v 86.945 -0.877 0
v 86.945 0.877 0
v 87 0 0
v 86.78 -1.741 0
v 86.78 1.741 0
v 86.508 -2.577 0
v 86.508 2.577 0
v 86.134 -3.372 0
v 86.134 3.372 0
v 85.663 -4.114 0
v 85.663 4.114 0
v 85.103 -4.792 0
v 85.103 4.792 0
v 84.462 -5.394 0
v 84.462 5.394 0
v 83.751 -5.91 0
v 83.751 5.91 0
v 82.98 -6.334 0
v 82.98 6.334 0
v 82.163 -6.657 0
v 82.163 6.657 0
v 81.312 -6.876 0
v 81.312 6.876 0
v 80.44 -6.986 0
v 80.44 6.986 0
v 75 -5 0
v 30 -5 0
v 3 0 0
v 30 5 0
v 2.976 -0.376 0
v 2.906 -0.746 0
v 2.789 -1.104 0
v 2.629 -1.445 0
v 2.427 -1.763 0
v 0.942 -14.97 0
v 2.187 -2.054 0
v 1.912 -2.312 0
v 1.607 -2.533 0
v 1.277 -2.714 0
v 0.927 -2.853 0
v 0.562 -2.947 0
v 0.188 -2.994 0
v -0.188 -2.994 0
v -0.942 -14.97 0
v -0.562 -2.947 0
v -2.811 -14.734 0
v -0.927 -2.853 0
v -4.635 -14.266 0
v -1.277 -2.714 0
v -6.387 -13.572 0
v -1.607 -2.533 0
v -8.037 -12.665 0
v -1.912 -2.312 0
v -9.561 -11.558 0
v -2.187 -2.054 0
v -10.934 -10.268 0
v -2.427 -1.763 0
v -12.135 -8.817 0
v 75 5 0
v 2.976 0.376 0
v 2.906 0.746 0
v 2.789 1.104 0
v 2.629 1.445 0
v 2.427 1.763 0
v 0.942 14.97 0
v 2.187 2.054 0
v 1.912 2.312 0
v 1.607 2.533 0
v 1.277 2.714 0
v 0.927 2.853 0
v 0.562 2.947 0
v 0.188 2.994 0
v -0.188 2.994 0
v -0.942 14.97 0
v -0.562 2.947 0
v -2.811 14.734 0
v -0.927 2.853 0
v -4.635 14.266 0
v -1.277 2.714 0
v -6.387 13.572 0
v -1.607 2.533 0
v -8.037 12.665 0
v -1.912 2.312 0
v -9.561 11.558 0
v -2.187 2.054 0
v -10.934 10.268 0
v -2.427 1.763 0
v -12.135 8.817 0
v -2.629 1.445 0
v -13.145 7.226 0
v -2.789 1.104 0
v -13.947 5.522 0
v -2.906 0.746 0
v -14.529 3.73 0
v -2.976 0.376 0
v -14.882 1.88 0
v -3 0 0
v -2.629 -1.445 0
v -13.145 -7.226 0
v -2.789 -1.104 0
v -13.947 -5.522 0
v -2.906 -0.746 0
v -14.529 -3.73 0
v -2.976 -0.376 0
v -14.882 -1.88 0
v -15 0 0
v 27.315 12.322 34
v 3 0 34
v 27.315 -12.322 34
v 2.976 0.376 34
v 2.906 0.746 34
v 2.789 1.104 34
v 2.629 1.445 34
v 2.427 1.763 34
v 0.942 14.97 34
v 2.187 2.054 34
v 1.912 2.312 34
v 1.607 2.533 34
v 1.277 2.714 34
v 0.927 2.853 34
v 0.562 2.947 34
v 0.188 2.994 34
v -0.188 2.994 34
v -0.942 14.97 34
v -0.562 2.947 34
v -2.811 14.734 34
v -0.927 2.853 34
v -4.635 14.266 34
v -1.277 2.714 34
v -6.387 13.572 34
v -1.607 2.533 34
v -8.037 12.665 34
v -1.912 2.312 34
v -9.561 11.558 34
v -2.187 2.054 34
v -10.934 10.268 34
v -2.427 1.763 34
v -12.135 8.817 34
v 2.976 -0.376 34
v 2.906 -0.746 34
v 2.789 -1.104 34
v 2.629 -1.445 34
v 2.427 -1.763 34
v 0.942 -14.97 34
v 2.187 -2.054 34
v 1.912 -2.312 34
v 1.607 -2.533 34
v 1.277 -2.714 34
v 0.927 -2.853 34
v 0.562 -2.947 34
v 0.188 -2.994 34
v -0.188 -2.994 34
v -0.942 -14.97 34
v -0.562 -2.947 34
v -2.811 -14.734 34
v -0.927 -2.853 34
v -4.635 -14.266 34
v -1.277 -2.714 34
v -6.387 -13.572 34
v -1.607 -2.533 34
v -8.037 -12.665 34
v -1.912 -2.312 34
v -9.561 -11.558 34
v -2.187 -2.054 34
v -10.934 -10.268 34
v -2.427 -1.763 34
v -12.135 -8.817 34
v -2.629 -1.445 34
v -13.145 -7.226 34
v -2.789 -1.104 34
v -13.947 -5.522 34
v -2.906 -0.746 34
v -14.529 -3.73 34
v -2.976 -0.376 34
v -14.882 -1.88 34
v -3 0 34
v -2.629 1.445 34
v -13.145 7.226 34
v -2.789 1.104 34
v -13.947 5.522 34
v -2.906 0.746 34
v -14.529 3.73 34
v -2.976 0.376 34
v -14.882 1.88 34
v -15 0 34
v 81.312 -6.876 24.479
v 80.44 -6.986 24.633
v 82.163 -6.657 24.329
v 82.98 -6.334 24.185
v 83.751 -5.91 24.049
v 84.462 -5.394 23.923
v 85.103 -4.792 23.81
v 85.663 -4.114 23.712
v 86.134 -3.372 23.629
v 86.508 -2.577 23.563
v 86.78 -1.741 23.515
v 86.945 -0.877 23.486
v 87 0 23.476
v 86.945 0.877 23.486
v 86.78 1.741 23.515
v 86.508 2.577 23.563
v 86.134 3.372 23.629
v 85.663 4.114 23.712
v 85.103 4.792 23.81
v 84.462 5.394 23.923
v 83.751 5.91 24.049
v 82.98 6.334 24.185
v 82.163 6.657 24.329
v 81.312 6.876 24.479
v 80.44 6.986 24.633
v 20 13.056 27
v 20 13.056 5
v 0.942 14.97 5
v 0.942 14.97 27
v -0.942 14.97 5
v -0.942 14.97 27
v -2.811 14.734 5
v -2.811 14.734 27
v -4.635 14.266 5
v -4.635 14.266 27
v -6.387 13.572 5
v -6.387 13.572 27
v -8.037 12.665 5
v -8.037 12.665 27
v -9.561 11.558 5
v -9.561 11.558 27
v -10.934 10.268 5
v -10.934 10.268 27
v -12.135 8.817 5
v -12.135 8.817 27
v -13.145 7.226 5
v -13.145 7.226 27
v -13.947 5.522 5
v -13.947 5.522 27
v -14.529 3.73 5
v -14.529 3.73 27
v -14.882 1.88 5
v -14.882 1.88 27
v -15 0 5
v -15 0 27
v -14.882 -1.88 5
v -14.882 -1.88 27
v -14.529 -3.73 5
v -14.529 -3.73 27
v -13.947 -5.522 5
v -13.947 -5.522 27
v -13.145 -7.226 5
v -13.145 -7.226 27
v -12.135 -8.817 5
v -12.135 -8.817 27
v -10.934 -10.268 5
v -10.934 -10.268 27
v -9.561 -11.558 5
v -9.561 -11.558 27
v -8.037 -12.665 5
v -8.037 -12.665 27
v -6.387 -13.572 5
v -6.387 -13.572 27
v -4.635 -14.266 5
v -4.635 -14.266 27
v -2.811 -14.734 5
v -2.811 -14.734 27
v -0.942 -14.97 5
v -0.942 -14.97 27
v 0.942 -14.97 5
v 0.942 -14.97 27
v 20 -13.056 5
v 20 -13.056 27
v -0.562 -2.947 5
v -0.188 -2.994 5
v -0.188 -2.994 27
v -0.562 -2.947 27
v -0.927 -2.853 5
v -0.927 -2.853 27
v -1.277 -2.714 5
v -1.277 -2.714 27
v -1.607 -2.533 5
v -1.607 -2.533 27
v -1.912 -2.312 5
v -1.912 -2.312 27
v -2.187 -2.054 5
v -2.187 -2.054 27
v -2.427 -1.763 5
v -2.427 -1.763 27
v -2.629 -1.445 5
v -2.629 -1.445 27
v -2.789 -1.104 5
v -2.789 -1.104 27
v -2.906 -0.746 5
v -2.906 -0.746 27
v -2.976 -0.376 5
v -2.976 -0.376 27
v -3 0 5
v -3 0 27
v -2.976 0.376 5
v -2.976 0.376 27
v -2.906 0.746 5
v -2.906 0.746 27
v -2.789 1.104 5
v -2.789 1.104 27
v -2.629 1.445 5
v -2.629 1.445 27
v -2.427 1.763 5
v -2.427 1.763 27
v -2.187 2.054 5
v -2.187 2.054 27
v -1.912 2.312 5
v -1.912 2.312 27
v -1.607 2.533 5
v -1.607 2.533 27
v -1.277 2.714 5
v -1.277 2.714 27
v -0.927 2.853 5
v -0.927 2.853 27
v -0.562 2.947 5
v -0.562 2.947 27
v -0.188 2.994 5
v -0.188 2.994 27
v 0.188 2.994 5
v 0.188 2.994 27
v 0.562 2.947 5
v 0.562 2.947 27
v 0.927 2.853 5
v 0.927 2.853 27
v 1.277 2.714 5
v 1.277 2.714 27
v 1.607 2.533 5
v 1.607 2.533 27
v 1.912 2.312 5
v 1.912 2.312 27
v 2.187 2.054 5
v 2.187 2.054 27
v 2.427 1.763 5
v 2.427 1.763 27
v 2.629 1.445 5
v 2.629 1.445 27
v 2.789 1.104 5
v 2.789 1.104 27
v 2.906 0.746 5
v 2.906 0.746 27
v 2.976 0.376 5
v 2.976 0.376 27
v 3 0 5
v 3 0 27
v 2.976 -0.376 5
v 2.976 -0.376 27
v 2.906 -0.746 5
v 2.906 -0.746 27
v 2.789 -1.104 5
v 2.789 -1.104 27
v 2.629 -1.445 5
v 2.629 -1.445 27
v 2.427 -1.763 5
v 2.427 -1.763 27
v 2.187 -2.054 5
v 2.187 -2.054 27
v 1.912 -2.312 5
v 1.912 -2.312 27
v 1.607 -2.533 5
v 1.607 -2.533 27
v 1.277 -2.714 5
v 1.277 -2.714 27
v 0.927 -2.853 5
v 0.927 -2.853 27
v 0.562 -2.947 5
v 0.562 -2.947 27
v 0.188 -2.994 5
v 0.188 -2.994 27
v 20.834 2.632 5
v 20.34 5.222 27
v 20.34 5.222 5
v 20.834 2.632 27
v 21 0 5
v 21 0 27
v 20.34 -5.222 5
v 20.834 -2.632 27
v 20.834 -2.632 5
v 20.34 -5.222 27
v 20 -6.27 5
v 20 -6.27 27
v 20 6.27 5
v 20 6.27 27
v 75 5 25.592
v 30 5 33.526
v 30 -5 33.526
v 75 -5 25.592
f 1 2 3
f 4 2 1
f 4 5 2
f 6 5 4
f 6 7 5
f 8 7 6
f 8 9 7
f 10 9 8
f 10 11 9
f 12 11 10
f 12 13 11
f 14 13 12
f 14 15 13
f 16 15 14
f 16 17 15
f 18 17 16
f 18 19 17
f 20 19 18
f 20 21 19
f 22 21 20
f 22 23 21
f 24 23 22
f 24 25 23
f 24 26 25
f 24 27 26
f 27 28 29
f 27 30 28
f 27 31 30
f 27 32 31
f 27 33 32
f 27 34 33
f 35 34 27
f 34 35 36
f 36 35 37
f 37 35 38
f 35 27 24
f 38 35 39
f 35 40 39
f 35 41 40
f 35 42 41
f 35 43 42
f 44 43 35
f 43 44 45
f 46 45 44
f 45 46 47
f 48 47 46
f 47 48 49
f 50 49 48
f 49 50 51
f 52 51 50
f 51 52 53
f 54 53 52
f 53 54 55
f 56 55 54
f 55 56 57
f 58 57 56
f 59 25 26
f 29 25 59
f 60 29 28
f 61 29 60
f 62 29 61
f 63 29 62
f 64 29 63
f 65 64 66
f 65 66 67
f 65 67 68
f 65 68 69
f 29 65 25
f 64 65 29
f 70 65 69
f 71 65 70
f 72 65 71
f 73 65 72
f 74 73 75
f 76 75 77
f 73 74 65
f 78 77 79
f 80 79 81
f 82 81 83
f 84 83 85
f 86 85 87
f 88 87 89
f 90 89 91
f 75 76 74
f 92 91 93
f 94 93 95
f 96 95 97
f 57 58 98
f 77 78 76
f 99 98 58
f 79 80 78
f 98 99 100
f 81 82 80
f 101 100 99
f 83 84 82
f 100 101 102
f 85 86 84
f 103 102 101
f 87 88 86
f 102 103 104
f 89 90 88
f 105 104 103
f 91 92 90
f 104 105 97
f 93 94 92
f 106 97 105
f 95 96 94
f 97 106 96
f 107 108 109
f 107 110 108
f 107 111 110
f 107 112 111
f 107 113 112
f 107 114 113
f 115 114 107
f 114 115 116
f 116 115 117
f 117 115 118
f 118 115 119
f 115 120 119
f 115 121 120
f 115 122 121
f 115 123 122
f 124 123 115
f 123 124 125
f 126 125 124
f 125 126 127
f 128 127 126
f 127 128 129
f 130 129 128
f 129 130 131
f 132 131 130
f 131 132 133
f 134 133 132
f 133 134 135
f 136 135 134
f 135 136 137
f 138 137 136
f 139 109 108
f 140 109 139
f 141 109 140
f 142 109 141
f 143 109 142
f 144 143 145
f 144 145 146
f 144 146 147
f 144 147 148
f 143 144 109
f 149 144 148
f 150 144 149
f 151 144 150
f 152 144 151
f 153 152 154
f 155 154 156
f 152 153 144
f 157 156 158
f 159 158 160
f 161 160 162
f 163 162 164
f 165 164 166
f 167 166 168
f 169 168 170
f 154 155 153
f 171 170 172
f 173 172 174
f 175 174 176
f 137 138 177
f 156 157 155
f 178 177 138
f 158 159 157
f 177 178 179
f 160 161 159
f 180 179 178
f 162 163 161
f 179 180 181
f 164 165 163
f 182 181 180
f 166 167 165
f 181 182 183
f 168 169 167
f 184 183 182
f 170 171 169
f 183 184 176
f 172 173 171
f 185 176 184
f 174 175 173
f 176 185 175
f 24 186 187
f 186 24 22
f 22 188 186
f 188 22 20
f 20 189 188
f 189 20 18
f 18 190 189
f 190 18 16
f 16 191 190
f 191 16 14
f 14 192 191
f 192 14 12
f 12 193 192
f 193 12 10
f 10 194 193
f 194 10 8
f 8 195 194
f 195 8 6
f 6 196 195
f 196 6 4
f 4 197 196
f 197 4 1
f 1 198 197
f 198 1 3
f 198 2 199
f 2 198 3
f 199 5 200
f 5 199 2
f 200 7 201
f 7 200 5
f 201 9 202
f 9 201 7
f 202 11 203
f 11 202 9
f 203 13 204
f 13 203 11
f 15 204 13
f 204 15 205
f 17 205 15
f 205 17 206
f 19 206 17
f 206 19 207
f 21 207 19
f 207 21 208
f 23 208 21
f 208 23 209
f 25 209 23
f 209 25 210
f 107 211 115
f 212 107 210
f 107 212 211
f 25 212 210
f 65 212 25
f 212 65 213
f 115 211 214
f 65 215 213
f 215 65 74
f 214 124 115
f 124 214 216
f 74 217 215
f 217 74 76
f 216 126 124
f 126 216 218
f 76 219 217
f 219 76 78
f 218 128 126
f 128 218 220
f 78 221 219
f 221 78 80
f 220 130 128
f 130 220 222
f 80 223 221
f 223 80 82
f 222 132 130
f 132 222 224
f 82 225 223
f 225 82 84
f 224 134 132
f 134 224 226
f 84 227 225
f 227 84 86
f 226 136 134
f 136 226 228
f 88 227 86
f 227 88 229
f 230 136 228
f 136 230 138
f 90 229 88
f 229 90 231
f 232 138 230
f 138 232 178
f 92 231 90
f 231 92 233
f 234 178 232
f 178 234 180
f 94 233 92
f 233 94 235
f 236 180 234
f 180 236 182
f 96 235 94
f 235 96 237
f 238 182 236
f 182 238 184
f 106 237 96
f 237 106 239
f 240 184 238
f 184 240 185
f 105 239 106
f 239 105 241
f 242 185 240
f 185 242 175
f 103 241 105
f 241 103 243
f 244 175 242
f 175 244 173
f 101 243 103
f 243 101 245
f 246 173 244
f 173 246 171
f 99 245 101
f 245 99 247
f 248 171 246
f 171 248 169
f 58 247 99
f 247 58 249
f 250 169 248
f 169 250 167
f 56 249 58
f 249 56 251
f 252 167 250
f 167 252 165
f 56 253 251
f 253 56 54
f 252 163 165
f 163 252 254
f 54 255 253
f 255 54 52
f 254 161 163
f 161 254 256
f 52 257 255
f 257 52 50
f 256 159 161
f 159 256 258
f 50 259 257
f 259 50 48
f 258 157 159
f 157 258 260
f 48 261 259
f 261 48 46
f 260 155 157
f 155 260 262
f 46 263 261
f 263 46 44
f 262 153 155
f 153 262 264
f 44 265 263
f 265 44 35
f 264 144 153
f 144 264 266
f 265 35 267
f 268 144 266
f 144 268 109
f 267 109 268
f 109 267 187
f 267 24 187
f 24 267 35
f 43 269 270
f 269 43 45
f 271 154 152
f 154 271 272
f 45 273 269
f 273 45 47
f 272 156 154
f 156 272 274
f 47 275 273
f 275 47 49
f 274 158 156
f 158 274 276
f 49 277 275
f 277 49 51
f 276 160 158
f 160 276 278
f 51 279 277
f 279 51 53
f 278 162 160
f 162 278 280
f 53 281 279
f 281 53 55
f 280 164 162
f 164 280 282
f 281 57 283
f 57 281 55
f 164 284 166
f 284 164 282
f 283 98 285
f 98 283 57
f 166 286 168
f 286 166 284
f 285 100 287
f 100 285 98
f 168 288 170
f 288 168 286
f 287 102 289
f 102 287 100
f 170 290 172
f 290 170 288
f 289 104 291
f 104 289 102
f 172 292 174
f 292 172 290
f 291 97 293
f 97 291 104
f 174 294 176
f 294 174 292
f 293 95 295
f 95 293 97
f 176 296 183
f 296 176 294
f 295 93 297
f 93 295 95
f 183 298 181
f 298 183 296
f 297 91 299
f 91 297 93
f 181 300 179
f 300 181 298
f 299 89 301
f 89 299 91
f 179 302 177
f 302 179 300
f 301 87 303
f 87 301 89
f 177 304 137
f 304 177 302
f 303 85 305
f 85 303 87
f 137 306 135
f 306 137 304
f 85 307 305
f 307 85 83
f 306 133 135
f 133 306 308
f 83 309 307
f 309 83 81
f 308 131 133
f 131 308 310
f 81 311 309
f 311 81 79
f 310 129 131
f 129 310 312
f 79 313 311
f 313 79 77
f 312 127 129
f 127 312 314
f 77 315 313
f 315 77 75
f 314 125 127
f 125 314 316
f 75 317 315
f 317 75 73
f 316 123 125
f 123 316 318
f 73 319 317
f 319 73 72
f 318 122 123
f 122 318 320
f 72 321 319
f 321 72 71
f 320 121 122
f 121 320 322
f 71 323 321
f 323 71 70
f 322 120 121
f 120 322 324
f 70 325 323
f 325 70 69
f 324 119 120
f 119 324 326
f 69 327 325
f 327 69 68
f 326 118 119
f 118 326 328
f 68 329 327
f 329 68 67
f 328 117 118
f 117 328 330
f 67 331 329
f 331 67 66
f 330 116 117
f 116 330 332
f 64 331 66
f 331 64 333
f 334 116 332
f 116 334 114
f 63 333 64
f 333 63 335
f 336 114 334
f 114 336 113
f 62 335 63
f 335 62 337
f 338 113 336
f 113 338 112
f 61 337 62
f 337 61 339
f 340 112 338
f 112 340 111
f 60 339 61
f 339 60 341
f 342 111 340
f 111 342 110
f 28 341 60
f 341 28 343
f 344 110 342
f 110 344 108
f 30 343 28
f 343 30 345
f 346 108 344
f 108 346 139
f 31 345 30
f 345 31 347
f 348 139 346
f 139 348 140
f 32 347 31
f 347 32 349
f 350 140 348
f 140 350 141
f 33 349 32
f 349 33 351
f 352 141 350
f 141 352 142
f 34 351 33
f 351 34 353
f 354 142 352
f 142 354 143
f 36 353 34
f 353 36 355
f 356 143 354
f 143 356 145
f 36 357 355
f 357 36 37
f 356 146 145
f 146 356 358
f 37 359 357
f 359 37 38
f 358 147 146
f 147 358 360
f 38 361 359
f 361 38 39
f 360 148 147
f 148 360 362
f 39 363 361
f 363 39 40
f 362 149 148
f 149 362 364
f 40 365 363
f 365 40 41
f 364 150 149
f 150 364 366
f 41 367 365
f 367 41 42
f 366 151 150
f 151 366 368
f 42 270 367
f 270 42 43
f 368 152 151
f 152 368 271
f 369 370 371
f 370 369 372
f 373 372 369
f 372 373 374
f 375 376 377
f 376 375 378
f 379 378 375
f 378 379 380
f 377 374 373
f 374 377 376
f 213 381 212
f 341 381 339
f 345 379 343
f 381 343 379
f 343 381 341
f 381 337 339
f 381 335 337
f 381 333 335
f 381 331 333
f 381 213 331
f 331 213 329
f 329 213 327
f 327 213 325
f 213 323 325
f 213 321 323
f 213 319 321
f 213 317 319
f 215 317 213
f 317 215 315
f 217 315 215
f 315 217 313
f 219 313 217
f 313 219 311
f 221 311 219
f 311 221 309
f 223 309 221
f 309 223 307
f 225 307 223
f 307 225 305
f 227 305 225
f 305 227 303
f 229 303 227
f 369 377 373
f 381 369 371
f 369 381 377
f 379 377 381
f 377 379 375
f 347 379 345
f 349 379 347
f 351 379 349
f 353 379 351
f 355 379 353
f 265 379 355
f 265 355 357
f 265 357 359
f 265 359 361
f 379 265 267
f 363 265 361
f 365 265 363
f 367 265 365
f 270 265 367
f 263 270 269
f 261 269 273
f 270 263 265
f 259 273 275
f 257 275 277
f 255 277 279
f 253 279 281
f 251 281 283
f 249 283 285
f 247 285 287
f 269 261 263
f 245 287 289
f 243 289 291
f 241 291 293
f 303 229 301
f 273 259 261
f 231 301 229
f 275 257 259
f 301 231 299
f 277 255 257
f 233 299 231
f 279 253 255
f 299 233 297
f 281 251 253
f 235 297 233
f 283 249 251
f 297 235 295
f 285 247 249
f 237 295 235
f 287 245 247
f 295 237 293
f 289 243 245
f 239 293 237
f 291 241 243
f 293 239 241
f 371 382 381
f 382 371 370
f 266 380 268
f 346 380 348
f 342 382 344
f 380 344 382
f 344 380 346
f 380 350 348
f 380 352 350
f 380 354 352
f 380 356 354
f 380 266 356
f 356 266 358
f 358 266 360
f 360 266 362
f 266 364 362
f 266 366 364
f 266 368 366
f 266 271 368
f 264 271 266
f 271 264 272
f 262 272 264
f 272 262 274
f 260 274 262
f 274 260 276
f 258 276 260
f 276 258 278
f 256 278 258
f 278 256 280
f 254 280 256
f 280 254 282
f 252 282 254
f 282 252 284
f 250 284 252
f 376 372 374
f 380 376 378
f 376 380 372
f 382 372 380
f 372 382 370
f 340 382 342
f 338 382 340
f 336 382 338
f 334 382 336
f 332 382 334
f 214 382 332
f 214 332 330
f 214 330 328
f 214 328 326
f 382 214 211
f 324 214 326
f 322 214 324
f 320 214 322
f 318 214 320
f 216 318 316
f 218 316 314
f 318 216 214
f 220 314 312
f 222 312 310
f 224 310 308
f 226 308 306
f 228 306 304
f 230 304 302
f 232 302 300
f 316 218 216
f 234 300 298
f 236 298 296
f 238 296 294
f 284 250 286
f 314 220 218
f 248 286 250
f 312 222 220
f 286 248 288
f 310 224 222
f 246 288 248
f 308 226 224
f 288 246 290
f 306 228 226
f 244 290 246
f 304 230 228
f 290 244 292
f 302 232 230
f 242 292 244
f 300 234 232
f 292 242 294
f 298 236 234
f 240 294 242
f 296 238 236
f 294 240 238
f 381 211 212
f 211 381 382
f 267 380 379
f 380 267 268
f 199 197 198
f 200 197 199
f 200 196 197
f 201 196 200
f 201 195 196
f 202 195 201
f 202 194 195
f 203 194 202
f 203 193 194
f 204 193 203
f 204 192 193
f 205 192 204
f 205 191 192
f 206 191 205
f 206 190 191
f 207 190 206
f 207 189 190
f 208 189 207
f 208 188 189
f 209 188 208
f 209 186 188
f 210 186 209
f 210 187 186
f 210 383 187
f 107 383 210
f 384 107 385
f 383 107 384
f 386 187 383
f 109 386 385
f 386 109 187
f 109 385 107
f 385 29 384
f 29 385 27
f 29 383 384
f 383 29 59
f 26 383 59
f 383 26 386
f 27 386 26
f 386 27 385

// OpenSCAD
$fn = 50;


difference(){
linear_extrude(34) difference(){
	hull(){
    circle(15);
		translate([80,0]) circle(7);
	}
  circle(3);
}

translate([0,0,5]) linear_extrude(22) circle(21);
translate([5,0,5]) linear_extrude(22) square([30,300], true);

translate([50,0,30]) rotate([0,10,0]) linear_extrude(50) square([200,50],true);
translate([30,-5,-1]) linear_extrude(50) square([45,10]);
}
	
